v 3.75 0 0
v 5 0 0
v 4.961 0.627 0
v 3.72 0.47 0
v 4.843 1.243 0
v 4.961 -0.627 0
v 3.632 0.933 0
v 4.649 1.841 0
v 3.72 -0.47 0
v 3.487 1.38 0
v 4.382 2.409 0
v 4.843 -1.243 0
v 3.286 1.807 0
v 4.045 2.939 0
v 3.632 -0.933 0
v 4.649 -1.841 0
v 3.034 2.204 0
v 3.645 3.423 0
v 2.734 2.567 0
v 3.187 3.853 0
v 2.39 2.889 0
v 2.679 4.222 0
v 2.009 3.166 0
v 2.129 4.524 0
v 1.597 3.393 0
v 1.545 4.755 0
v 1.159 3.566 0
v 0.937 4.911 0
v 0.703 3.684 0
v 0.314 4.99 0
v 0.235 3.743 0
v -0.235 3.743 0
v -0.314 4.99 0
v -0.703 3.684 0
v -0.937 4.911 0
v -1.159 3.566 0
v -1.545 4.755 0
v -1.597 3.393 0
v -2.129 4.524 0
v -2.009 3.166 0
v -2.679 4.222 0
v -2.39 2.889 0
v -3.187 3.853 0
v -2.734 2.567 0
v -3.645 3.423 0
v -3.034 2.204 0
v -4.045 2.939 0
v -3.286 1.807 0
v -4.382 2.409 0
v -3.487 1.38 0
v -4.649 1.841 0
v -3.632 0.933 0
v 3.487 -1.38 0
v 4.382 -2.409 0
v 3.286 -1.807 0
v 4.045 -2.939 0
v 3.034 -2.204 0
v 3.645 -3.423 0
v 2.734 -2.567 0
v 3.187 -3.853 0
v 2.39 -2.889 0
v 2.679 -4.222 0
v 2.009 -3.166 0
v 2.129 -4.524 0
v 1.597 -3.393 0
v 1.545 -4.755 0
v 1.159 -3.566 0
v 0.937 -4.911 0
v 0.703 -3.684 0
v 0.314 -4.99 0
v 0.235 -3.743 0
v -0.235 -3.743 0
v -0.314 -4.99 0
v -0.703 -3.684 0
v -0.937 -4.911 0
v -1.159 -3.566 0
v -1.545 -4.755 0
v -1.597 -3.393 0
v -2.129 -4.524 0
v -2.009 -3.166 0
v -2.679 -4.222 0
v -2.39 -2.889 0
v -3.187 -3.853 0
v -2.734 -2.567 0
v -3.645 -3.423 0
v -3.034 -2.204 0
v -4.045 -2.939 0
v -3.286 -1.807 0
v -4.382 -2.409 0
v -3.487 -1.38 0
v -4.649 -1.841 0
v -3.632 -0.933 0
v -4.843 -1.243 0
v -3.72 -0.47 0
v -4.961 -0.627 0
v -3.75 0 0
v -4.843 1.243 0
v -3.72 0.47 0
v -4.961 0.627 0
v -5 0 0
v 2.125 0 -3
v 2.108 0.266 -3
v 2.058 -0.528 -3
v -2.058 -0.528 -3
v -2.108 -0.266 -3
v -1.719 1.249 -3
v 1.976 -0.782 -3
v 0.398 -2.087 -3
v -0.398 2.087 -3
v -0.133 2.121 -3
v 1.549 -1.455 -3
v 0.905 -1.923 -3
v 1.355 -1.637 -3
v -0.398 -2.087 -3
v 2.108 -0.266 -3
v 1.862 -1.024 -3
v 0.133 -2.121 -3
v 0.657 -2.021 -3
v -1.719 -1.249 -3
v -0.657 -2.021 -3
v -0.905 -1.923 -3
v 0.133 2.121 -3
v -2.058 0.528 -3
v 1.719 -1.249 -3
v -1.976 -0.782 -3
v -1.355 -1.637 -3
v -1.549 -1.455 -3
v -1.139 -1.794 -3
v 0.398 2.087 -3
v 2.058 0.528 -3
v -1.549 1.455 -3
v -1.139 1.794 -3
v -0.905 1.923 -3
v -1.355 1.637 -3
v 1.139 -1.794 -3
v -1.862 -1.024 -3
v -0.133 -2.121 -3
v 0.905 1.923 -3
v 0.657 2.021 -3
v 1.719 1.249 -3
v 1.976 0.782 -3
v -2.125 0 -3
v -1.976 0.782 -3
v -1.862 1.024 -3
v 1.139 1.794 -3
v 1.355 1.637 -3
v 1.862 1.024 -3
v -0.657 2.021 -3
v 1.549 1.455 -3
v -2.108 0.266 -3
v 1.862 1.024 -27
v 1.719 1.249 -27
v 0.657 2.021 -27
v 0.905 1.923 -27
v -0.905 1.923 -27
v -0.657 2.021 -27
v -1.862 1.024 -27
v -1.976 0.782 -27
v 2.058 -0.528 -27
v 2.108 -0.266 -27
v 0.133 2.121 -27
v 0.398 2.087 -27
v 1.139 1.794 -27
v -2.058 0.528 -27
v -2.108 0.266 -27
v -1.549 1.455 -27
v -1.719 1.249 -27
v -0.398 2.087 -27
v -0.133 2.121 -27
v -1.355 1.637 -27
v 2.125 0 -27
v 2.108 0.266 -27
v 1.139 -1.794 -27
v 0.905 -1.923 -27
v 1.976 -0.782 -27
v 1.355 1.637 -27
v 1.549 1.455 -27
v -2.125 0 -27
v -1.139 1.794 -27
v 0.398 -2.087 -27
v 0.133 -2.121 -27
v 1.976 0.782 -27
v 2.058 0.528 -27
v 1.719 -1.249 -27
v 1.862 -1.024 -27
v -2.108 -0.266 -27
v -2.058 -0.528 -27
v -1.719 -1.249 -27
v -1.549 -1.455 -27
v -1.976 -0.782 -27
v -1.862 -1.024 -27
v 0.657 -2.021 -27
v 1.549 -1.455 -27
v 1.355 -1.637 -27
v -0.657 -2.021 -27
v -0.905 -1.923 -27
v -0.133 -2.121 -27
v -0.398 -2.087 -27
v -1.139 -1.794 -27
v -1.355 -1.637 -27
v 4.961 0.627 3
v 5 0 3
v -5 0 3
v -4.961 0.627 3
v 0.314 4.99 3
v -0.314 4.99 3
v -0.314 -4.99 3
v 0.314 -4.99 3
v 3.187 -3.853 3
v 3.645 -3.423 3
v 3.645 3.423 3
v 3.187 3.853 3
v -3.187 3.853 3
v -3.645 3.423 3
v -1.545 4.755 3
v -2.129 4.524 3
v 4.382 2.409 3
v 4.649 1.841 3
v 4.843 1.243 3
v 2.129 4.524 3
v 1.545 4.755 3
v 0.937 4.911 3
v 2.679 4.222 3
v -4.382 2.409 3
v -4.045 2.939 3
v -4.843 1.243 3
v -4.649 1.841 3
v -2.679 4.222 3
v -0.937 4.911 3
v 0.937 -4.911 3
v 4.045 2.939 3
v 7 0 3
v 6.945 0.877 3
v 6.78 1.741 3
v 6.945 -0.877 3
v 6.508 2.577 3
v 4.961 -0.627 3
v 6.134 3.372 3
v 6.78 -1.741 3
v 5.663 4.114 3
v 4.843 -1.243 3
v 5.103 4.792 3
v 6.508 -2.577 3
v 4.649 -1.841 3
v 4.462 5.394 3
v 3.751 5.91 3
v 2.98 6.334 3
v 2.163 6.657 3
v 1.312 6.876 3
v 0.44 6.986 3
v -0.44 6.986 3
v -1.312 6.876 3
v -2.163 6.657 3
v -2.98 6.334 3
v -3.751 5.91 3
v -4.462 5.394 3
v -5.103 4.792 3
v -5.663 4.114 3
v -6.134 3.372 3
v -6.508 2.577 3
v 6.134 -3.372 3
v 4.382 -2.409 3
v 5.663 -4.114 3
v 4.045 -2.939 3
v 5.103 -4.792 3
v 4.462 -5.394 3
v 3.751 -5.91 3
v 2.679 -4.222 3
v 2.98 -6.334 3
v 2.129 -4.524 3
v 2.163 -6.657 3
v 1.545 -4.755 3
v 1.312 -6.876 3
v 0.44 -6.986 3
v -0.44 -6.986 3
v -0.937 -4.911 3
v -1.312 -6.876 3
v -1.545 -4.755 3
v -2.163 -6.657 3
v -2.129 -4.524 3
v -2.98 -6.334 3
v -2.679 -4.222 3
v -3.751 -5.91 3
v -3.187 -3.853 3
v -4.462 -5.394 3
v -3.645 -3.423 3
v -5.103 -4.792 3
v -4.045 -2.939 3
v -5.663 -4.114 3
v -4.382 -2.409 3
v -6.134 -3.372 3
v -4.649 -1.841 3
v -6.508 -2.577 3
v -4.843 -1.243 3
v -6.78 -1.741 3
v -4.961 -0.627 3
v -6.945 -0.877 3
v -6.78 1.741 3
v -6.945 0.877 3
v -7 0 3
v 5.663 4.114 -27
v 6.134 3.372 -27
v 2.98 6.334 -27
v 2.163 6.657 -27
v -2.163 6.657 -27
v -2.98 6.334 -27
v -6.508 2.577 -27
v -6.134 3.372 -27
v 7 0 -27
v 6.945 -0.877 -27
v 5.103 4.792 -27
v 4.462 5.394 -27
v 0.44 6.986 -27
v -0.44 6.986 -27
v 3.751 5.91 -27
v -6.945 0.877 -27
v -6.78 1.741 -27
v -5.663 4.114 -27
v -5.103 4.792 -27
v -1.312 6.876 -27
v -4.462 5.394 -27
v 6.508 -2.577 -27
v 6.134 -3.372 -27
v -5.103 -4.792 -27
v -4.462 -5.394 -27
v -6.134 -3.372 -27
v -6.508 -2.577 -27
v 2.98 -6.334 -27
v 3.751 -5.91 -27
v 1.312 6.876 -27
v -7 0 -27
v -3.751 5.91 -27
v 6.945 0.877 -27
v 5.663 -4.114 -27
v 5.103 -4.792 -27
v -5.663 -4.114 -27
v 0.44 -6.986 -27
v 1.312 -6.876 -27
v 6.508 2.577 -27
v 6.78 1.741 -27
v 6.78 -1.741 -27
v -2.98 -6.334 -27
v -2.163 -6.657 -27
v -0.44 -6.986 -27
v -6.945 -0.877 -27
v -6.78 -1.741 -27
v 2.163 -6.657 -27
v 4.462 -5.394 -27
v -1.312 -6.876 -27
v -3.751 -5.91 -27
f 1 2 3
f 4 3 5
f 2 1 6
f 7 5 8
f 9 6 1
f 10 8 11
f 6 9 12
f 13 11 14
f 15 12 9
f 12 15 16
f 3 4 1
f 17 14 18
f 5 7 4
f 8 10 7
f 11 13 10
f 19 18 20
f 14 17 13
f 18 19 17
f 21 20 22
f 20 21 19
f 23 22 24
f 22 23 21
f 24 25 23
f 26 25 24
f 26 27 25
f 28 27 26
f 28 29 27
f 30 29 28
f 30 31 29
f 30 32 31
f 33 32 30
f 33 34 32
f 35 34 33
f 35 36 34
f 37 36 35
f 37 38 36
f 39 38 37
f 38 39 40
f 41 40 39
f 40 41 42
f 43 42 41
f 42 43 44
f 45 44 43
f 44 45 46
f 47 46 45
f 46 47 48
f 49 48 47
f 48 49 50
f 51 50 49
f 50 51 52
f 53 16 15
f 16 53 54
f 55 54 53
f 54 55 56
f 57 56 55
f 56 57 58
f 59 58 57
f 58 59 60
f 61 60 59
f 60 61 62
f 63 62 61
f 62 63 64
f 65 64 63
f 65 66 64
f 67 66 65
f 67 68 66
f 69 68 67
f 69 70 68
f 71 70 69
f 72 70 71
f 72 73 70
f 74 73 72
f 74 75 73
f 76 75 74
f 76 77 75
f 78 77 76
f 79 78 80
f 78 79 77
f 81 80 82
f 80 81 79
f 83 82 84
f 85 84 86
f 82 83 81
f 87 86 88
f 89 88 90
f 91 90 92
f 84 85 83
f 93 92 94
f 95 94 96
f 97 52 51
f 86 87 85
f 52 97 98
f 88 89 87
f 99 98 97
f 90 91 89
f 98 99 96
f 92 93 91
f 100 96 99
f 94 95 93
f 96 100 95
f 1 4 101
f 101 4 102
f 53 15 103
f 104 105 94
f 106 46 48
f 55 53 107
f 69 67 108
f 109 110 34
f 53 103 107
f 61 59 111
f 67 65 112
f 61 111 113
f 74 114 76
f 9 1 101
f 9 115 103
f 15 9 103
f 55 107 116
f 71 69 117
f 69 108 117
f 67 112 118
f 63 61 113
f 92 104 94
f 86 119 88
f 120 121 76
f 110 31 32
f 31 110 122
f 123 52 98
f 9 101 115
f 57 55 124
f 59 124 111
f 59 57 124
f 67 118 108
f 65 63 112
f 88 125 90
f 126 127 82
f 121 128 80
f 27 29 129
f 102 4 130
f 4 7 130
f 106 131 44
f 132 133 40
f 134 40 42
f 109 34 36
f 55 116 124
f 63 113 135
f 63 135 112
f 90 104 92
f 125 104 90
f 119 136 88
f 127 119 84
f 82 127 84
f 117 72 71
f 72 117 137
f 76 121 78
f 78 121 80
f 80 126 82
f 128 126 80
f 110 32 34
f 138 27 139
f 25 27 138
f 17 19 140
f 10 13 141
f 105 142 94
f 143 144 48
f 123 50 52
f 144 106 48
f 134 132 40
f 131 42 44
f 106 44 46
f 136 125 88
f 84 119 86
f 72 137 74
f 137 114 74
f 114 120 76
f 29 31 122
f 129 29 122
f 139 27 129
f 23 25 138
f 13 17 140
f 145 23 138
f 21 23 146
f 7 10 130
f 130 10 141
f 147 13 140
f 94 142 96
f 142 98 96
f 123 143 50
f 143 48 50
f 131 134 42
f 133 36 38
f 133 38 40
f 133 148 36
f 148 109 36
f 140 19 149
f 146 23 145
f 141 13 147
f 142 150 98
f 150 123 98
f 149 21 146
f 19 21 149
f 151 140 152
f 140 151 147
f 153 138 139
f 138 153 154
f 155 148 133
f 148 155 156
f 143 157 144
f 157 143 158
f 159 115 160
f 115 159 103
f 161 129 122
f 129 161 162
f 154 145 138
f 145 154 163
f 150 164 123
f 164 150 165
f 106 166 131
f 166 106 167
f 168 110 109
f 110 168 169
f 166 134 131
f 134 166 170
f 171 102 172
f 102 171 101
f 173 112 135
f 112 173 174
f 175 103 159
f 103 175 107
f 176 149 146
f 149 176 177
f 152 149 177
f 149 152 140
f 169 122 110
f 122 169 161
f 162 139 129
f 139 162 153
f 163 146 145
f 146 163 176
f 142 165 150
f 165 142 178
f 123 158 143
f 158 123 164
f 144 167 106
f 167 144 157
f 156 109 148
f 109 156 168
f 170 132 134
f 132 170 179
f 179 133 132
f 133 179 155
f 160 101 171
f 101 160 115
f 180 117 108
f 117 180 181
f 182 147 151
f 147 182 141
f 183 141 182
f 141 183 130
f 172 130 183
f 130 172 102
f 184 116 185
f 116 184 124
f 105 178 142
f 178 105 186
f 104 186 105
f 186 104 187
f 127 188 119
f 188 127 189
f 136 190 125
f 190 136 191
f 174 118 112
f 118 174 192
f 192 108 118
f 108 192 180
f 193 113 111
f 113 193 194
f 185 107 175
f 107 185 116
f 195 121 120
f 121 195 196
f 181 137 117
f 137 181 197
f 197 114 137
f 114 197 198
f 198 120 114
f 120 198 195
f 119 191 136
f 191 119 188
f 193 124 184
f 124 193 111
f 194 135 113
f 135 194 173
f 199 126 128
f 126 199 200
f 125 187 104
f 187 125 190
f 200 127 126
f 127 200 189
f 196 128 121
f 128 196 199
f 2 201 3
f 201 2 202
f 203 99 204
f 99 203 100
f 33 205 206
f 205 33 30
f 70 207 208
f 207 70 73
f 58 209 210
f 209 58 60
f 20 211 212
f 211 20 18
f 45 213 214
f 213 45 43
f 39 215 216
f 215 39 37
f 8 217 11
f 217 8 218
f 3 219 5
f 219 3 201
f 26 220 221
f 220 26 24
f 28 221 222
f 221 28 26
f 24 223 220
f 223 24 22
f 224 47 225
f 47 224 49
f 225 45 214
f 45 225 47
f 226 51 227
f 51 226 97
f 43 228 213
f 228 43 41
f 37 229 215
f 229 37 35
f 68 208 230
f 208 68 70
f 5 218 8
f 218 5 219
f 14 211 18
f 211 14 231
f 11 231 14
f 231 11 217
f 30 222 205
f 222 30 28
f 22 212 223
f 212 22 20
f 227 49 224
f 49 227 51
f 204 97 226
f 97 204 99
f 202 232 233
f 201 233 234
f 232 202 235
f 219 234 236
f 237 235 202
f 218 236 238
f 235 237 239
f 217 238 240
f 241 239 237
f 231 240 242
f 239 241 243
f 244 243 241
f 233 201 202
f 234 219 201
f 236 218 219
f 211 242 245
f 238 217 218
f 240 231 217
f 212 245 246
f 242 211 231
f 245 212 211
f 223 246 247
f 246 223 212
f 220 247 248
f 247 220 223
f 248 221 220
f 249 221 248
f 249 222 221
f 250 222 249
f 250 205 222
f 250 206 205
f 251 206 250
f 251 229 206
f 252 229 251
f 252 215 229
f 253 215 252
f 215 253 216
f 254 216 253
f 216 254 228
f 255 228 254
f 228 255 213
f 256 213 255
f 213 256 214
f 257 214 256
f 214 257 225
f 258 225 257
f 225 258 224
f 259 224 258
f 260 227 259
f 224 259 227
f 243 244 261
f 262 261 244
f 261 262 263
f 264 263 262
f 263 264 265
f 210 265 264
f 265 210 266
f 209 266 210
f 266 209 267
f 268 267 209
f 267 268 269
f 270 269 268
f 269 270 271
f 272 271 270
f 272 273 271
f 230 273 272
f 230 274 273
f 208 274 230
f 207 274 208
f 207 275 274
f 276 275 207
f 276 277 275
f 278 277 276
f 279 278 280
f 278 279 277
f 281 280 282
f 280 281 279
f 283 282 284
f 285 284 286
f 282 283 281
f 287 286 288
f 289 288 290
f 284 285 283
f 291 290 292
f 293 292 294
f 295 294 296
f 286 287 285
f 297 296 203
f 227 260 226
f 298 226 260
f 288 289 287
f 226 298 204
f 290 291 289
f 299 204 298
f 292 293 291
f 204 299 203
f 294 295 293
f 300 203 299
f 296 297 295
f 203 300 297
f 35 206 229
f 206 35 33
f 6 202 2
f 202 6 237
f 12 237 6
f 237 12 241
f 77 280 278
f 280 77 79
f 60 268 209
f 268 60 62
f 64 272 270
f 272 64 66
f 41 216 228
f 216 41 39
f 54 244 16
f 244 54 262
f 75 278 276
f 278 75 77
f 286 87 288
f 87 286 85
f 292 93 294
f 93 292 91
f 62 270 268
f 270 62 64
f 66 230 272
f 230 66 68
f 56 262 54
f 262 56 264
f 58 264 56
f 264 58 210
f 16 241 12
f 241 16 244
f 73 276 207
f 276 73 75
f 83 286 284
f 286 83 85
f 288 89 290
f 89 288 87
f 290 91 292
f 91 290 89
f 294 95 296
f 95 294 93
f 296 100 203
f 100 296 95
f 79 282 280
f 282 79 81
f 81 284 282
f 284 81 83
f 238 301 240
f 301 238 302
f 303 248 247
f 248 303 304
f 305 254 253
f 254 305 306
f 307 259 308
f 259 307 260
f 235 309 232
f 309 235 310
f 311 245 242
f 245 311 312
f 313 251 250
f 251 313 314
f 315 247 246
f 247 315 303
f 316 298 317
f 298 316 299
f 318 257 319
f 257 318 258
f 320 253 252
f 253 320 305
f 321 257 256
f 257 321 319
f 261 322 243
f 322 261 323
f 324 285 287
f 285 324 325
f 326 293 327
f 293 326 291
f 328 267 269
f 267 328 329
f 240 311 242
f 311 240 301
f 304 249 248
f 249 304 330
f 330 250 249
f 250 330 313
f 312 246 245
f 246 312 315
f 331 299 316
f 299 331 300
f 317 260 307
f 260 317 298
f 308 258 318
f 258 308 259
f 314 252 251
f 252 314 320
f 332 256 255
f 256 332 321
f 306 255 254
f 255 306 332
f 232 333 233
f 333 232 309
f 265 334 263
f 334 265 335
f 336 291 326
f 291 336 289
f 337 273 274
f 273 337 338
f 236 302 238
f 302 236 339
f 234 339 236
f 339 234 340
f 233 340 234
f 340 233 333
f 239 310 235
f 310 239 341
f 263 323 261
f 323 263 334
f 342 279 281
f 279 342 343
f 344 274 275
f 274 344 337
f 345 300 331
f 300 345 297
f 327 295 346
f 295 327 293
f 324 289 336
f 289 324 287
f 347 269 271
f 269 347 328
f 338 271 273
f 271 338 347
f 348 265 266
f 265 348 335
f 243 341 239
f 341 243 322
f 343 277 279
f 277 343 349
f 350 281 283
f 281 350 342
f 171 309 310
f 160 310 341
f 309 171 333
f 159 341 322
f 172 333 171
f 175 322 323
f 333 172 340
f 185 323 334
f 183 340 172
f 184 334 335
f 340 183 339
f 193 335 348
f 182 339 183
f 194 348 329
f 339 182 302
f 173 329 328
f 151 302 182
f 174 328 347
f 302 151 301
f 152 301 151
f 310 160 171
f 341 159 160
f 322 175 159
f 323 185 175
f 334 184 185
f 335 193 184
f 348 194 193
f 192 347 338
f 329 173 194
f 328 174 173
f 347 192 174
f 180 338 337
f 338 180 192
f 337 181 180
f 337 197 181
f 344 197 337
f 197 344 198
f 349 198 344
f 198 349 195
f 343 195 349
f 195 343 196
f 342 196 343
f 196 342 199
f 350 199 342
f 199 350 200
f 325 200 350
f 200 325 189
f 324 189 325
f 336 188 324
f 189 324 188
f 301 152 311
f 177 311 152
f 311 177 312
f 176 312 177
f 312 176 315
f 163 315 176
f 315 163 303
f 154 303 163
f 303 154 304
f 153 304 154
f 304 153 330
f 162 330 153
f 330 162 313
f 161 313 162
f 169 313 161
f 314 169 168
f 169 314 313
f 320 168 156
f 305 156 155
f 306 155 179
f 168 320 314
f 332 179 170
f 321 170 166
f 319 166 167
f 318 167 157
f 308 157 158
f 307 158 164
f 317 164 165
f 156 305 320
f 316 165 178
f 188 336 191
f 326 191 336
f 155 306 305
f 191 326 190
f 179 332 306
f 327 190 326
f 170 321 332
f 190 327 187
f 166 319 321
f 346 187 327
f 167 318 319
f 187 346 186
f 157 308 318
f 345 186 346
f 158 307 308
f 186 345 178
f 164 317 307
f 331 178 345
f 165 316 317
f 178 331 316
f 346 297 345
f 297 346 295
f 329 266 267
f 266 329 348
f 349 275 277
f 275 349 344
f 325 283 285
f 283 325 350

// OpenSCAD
$fn = 50;

difference() {
	union() {
		translate(v = [0, 0, -27.0]) {
			cylinder(h = 30, r = 7.0);
		}
	}
	union() {
		translate(v = [0, 0, 0]) {
			rotate(a = [0, 0, 0]) {
				difference() {
					union() {
						translate(v = [0, 0, -30.0]) {
							cylinder(h = 30, r = 2.0);
						}
						translate(v = [0, 0, -3]) {
							cylinder(h = 3, r1 = 2.125, r2 = 3.75);
						}
						translate(v = [0, 0, -30.0]) {
							cylinder(h = 30, r = 2.125);
						}
						translate(v = [0, 0, -30.0]) {
							cylinder(h = 30, r = 2.0);
						}
					}
					union();
				}
			}
		}
		#cylinder(h = 3, r = 5.0);
	}
}
